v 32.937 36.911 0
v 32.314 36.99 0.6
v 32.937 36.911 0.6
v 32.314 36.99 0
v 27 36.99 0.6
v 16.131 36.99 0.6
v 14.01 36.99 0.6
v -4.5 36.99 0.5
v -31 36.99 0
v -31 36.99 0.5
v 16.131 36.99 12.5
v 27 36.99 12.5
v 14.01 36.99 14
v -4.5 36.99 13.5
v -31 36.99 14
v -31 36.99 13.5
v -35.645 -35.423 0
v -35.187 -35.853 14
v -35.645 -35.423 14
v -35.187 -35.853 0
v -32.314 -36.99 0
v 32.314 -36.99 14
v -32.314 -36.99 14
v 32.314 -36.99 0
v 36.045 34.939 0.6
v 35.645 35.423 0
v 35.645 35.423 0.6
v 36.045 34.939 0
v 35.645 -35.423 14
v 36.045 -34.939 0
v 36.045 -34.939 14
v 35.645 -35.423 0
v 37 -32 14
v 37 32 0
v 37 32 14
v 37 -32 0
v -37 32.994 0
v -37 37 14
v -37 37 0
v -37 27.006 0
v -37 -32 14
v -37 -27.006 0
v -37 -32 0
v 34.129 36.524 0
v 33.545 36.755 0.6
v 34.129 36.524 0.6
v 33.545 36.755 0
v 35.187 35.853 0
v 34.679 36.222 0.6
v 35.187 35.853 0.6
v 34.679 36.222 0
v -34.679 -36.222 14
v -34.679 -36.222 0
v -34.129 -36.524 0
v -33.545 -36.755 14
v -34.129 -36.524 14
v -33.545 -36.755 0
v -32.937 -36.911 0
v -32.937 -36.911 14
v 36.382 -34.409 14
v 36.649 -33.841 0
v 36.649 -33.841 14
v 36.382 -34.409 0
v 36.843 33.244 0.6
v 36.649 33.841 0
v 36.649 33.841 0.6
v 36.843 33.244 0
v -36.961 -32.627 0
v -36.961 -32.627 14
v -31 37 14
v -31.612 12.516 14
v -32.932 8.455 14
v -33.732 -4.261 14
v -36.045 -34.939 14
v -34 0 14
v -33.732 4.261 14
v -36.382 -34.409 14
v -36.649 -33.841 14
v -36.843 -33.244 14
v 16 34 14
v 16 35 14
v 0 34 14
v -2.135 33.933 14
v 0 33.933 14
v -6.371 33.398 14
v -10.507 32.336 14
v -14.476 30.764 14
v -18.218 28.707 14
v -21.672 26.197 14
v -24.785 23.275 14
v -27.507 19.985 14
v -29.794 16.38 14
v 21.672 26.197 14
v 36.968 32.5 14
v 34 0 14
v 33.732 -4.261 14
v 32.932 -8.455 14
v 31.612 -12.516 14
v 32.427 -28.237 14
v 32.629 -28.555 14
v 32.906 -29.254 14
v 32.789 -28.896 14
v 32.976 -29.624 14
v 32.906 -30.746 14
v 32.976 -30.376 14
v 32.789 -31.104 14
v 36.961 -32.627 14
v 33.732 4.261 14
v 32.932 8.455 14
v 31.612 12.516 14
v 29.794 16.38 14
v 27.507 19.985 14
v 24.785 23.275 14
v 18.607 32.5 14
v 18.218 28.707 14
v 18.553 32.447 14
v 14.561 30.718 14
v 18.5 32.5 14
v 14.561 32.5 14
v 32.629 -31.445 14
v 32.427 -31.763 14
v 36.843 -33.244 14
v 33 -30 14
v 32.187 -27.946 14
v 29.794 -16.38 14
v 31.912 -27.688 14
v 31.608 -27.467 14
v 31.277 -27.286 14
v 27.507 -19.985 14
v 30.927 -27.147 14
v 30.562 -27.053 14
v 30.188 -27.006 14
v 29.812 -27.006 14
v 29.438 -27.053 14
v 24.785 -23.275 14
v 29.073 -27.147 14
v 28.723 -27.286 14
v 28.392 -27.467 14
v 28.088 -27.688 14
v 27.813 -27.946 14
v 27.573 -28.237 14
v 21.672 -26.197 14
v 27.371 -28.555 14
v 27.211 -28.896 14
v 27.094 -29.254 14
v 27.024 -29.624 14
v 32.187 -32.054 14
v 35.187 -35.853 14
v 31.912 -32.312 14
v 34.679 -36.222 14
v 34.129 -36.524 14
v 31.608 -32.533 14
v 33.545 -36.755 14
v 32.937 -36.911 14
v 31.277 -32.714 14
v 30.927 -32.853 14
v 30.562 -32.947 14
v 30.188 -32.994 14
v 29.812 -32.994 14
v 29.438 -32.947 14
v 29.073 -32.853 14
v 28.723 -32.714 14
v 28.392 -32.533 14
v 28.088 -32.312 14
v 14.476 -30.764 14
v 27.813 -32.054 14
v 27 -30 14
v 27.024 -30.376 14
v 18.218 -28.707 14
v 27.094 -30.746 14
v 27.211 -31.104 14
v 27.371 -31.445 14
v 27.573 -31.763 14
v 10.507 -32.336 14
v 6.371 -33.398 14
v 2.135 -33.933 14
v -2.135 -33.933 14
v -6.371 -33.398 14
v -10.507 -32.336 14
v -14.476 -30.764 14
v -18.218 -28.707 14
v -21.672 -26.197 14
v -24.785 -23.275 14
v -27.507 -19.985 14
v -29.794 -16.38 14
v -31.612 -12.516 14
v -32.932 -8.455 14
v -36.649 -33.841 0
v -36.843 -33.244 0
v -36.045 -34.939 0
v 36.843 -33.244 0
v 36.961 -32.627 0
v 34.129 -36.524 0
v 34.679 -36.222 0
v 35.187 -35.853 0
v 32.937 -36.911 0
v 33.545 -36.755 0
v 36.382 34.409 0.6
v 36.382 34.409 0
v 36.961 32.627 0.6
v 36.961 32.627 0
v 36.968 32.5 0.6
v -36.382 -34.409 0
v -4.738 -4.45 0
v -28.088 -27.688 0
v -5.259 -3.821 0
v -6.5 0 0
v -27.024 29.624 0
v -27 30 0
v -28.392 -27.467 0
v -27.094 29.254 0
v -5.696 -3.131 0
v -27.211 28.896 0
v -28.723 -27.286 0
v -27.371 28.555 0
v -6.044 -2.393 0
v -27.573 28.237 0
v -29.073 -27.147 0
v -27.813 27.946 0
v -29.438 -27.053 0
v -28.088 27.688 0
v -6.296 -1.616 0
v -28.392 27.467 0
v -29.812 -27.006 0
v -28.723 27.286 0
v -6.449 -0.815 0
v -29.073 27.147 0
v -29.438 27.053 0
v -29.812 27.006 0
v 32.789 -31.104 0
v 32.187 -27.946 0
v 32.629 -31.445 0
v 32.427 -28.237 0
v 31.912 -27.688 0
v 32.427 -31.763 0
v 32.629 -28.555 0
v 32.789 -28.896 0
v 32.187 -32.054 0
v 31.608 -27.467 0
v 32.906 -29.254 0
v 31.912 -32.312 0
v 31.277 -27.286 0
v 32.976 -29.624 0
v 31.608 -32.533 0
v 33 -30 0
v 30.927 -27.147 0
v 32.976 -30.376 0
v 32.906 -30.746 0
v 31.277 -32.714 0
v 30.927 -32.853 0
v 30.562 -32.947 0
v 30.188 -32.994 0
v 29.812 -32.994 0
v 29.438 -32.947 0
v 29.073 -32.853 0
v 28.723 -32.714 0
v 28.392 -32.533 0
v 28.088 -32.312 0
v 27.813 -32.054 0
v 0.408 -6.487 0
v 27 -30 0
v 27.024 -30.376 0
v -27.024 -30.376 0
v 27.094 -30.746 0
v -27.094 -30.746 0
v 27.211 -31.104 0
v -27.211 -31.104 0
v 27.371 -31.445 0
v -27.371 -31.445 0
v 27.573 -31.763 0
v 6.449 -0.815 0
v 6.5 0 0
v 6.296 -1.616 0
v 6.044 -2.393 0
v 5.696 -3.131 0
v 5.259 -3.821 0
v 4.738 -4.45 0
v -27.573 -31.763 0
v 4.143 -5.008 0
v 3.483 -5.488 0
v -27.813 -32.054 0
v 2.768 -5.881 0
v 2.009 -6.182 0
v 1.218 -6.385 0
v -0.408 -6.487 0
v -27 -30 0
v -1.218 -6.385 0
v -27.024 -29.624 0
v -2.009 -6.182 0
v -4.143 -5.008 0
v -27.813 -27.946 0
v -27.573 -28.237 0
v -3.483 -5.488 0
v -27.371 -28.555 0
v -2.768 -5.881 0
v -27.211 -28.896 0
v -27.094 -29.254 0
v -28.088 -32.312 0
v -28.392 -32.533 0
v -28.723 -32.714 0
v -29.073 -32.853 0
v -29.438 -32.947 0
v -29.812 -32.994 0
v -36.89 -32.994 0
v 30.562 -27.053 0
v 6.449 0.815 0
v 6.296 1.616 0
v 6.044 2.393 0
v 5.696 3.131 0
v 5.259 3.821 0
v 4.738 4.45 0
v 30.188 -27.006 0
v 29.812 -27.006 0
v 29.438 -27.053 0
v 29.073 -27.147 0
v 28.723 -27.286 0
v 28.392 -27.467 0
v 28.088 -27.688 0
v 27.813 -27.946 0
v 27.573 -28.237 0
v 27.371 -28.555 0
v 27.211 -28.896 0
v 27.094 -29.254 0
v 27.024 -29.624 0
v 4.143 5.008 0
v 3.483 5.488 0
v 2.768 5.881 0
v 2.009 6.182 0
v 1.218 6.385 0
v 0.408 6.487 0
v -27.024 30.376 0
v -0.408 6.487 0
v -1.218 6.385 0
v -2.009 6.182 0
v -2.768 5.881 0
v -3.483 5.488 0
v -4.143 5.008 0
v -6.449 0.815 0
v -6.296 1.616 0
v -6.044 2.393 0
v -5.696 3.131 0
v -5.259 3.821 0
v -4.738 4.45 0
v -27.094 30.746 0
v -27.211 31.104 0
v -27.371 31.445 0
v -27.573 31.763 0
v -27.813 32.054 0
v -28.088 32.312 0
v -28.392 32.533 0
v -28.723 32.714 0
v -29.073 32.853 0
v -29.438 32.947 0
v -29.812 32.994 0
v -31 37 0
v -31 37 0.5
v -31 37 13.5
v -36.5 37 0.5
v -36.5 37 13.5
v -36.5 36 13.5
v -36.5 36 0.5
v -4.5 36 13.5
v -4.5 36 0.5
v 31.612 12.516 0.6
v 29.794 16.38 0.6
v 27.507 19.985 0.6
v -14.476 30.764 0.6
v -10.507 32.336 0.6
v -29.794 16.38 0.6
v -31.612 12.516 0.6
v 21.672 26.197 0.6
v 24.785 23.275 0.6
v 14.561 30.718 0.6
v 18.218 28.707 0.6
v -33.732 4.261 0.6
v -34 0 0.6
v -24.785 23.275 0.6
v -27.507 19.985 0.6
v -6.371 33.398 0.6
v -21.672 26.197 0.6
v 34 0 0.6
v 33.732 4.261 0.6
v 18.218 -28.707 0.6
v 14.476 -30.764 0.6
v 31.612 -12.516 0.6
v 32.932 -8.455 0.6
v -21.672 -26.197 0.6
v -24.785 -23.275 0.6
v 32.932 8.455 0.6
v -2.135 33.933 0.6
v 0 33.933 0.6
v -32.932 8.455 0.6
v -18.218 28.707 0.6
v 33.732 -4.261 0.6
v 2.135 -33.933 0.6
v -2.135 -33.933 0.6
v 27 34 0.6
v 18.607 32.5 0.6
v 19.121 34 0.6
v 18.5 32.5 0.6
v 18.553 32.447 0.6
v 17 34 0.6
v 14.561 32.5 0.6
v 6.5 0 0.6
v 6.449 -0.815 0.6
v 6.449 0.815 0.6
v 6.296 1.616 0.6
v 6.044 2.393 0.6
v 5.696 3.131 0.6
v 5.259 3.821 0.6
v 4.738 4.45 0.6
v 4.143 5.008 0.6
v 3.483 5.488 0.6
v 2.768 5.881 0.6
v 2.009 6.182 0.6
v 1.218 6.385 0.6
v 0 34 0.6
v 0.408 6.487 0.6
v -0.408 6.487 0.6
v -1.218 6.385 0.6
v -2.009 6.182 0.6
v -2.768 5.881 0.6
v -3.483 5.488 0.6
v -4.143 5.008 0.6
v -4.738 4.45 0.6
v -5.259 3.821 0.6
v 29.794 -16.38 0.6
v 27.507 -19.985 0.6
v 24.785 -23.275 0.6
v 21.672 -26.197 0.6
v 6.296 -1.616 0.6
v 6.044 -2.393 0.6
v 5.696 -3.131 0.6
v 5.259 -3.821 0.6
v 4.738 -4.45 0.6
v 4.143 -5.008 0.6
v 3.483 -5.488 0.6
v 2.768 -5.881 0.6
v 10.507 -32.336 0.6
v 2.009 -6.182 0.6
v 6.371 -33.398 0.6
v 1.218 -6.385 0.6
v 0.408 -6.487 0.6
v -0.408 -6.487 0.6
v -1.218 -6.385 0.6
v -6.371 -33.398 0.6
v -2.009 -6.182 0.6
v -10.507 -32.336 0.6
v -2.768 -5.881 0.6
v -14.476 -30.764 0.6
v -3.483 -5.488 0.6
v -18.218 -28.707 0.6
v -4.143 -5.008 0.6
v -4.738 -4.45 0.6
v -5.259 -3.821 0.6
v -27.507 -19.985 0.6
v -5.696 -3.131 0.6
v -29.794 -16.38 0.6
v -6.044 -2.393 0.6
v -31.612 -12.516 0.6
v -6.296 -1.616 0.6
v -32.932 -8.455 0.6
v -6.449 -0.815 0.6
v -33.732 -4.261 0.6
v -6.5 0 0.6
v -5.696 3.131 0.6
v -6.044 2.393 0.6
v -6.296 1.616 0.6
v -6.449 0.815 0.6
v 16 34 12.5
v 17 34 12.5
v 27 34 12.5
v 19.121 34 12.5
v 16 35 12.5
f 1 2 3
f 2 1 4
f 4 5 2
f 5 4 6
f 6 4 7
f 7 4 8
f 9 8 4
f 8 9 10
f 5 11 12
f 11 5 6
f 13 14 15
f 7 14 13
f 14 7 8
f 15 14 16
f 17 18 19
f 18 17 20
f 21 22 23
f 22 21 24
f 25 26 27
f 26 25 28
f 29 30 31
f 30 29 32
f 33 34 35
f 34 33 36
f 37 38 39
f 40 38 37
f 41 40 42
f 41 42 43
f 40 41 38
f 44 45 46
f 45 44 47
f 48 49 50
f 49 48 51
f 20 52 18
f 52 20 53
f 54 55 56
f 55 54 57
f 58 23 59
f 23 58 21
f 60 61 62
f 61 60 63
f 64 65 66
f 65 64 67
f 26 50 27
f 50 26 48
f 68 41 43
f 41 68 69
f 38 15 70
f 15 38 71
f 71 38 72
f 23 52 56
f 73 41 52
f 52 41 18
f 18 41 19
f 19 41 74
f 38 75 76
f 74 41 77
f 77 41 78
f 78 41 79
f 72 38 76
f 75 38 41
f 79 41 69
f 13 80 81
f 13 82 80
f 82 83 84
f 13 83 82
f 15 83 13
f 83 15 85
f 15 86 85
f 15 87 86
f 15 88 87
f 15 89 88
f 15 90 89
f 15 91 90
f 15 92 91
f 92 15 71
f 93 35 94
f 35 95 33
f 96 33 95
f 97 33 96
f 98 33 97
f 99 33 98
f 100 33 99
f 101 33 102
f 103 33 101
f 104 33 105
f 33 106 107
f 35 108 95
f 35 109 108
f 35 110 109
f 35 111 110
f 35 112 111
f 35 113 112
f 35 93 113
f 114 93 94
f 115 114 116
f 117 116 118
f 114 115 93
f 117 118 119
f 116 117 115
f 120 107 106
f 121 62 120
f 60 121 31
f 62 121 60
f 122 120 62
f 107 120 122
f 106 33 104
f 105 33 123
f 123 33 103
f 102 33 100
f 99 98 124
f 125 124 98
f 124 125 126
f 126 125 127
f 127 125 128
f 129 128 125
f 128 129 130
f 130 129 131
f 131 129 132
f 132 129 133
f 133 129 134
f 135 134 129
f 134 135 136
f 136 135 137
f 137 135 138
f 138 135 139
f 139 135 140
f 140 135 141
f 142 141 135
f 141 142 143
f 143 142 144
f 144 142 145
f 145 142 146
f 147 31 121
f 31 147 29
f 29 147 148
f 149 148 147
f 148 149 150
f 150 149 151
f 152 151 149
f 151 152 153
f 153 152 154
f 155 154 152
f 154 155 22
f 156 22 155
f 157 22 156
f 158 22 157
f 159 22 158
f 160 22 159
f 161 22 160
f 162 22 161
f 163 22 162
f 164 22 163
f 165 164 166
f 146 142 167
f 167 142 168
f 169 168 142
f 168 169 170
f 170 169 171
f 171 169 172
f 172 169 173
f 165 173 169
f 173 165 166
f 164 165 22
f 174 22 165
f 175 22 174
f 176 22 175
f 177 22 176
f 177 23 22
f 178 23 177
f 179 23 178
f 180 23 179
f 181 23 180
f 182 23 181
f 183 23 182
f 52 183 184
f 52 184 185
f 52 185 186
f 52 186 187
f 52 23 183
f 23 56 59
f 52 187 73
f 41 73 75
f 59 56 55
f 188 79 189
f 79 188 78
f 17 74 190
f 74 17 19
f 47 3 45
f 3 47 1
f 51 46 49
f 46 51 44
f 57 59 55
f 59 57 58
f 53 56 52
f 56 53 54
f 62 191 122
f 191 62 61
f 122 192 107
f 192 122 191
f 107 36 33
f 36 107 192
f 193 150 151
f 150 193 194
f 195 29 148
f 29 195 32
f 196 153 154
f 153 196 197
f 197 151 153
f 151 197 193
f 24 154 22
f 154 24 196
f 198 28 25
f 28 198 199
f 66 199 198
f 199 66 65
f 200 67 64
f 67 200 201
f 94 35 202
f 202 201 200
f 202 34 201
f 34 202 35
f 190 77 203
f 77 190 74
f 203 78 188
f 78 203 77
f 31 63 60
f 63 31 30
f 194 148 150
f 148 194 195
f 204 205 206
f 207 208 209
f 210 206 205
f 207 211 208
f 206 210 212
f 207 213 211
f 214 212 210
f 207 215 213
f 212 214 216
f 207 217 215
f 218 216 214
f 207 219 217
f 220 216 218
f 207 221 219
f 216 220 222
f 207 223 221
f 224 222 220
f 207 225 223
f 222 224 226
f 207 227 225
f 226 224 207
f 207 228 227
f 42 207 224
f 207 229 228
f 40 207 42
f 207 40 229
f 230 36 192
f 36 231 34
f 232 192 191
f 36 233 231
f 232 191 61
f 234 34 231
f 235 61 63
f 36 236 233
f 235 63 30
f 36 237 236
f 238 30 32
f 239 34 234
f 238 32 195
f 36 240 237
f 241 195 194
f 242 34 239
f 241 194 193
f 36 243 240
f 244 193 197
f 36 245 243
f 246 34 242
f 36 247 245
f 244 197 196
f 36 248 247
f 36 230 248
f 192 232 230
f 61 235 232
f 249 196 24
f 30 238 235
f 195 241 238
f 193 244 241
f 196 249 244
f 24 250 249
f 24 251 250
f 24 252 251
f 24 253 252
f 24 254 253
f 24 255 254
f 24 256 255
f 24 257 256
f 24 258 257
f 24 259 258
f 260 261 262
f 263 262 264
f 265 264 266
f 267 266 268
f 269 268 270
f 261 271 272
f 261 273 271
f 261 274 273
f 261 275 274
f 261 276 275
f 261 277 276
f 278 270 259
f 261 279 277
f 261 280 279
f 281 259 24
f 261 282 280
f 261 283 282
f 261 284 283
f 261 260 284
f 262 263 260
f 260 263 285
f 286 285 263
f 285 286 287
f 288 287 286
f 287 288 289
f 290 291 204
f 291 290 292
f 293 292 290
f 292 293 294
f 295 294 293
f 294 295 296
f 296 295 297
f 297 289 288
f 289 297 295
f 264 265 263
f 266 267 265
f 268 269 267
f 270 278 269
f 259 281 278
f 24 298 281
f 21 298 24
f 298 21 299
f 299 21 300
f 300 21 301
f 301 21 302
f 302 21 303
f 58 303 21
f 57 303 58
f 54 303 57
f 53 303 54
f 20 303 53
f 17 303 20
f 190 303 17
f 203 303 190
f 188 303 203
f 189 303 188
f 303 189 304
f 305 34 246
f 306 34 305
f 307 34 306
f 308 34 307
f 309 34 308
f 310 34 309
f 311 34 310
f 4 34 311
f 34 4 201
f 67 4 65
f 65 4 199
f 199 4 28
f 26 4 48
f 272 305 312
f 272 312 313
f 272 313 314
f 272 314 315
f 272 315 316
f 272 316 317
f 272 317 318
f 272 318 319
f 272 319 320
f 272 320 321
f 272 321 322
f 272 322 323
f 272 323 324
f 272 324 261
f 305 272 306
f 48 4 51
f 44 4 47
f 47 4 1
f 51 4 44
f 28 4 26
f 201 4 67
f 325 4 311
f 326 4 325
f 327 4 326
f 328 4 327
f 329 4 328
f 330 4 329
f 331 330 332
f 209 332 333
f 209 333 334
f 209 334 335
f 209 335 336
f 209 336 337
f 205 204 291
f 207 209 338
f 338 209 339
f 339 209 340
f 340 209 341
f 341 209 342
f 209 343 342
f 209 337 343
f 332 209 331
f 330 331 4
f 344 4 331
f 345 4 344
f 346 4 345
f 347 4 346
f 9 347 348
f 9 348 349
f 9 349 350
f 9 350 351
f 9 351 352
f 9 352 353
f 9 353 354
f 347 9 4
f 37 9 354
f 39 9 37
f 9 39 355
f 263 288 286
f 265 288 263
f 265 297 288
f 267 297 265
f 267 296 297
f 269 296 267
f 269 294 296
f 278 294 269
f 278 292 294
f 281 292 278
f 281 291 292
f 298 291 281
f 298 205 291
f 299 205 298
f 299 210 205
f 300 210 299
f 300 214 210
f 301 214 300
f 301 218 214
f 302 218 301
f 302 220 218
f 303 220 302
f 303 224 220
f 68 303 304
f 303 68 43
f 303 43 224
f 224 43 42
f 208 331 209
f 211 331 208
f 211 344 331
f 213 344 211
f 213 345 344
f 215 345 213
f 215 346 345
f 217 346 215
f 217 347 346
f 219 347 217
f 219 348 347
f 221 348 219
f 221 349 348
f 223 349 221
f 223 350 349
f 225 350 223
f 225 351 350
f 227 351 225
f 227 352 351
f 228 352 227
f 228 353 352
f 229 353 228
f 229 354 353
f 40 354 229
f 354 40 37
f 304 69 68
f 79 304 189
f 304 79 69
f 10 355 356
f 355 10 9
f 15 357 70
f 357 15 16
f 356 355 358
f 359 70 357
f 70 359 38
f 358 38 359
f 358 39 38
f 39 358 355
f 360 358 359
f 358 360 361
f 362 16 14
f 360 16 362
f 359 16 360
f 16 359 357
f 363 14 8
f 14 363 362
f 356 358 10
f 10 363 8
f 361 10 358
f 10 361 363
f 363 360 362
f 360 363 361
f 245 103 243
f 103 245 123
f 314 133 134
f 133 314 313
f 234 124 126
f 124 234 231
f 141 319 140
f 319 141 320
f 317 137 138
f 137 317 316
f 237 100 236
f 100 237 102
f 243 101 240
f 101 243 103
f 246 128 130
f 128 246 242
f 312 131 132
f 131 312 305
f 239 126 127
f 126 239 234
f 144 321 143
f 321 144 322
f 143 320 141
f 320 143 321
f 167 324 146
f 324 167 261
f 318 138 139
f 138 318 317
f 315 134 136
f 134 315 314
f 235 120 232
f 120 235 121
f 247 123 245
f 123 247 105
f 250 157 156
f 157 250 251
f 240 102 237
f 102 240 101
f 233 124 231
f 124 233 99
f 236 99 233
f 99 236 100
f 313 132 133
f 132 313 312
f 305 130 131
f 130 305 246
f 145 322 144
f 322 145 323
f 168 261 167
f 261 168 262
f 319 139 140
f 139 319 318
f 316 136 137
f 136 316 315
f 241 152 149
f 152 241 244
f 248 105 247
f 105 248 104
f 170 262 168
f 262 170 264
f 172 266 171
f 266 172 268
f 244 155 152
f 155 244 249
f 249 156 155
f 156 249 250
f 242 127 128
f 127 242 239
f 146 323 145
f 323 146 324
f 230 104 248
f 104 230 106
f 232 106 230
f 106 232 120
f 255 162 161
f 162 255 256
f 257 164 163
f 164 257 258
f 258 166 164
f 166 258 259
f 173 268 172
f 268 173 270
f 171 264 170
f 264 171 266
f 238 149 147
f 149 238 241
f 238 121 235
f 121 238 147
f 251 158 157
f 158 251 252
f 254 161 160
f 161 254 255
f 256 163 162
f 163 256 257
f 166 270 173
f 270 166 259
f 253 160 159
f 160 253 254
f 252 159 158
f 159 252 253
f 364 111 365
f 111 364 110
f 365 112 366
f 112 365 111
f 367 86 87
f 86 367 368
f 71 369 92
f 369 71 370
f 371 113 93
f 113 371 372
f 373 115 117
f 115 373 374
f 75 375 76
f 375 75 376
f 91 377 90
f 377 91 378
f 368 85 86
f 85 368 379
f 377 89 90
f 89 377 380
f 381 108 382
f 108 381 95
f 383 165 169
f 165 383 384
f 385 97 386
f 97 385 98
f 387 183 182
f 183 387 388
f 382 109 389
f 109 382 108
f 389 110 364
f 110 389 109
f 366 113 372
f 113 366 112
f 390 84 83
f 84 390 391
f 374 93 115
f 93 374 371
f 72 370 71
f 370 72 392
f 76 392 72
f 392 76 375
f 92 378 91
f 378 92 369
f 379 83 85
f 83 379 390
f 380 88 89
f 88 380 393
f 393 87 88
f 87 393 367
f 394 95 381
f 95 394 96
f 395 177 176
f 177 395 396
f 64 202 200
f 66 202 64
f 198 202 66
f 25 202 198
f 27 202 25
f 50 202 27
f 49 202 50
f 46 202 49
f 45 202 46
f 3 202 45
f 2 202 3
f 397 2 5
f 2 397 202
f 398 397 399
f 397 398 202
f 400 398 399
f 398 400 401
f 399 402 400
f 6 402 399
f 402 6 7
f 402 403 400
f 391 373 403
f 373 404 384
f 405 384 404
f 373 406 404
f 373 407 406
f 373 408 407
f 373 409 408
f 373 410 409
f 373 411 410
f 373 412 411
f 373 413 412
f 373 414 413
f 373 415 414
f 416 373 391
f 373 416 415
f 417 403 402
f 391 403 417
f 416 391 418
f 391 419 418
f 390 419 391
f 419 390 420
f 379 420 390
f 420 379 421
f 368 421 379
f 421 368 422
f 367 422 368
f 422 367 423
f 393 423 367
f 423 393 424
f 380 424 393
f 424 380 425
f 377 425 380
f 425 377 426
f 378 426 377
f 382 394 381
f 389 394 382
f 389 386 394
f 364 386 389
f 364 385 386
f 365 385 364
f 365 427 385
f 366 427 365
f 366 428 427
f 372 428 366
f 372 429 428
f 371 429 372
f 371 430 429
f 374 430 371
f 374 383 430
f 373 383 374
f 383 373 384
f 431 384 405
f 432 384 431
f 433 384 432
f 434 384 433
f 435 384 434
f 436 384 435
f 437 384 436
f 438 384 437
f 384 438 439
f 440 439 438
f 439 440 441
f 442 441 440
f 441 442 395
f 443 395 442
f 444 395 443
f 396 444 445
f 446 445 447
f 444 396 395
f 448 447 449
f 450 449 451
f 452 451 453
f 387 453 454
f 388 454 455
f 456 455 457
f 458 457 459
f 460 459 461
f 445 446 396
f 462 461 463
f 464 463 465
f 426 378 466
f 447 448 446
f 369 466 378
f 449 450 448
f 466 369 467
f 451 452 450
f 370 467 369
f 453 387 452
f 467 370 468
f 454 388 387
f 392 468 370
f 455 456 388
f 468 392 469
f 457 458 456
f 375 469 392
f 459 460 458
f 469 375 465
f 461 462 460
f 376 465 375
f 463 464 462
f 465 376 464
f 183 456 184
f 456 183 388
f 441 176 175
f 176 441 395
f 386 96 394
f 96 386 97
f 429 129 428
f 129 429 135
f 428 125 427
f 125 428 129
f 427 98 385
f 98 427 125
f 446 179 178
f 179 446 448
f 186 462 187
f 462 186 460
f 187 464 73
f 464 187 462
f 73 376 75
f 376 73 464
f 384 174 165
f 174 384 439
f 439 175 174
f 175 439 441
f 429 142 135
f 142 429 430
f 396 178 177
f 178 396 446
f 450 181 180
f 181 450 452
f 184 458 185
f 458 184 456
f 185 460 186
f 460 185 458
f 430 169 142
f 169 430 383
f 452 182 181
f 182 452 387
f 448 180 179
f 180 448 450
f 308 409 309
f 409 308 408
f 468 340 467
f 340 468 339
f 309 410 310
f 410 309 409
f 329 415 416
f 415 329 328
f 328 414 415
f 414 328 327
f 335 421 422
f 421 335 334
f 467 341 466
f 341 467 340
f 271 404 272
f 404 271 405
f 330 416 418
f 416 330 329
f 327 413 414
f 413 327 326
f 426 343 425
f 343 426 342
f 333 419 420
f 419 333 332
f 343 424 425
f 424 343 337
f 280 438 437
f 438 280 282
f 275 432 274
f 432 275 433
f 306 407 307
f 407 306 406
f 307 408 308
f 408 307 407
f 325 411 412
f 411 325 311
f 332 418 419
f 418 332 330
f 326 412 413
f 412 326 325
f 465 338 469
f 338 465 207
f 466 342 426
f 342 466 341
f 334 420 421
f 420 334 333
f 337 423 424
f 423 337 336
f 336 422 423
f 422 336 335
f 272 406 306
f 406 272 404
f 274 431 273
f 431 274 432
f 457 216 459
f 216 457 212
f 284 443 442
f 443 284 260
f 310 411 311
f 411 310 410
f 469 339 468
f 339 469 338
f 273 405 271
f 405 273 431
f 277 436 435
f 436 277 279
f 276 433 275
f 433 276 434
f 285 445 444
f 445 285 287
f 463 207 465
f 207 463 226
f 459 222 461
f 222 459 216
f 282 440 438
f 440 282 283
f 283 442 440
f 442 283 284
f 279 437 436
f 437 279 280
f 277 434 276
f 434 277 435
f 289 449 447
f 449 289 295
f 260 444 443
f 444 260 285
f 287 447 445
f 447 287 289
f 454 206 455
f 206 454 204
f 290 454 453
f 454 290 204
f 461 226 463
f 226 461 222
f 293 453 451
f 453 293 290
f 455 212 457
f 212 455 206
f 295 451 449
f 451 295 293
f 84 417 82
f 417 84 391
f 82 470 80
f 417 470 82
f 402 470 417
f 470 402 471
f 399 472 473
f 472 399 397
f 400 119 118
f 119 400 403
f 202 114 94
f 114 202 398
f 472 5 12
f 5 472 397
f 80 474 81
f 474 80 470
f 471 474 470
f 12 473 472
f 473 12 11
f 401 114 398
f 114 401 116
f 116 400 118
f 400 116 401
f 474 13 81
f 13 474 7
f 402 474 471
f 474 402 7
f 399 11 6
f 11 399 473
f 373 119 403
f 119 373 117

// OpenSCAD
$fn = 50;


difference() {
	union() {
		hull() {
			translate(v = [-32.0000000000, 32.0000000000, 0]) {
				cylinder(h = 14, r = 5);
			}
			translate(v = [32.0000000000, 32.0000000000, 0]) {
				cylinder(h = 14, r = 5);
			}
			translate(v = [-32.0000000000, -32.0000000000, 0]) {
				cylinder(h = 14, r = 5);
			}
			translate(v = [32.0000000000, -32.0000000000, 0]) {
				cylinder(h = 14, r = 5);
			}
		}
		translate(v = [-37.0000000000, 31.0000000000, 0]) {
			cube(size = [6, 6, 14]);
		}
	}
	union() {
		translate(v = [-37.5000000000, -30.0000000000, -250.0000000000]) {
			rotate(a = [0, 0, 0]) {
				difference() {
					union() {
						hull() {
							translate(v = [7.5000000000, 0, 0]) {
								cylinder(h = 250, r = 3.0000000000, r1 = 3.0000000000, r2 = 3.0000000000);
							}
							translate(v = [-7.5000000000, 0, 0]) {
								cylinder(h = 250, r = 3.0000000000, r1 = 3.0000000000, r2 = 3.0000000000);
							}
						}
					}
					union();
				}
			}
		}
		translate(v = [-37.5000000000, 30.0000000000, -250.0000000000]) {
			rotate(a = [0, 0, 0]) {
				difference() {
					union() {
						hull() {
							translate(v = [7.5000000000, 0, 0]) {
								cylinder(h = 250, r = 3.0000000000, r1 = 3.0000000000, r2 = 3.0000000000);
							}
							translate(v = [-7.5000000000, 0, 0]) {
								cylinder(h = 250, r = 3.0000000000, r1 = 3.0000000000, r2 = 3.0000000000);
							}
						}
					}
					union();
				}
			}
		}
		translate(v = [-36.5000000000, 36.0000000000, 0.5000000000]) {
			cube(size = [32, 1, 13.0000000000]);
		}
		translate(v = [30.0000000000, -30.0000000000, -50.0000000000]) {
			cylinder(h = 100, r = 3.0000000000);
		}
		translate(v = [0, 0, 0.6000000000]) {
			cylinder(h = 16.4000000000, r = 34.0000000000);
		}
		translate(v = [0, 0, -7.0000000000]) {
			cylinder(h = 14, r = 6.5000000000);
		}
		translate(v = [0.0000000000, 32.5000000000, 0.6000000000]) {
			cube(size = [37.0000000000, 1.5000000000, 16.4000000000]);
		}
		translate(v = [27.0000000000, 32.5000000000, 0.6000000000]) {
			cube(size = [10, 4.5000000000, 16.4000000000]);
		}
		translate(v = [16.0000000000, 32.5000000000, 12.5000000000]) {
			cube(size = [21, 4.5000000000, 1.5000000000]);
		}
		translate(v = [13.2500000000, 37.7500000000, 0.6000000000]) {
			rotate(a = [0, 0, -45]) {
				cube(size = [7.5000000000, 1.5000000000, 16.4000000000]);
			}
		}
		translate(v = [7.0610000000, 30.5000000000, 0.6000000000]) {
			cube(size = [7.5000000000, 2, 13.4000000000]);
		}
	}
}
